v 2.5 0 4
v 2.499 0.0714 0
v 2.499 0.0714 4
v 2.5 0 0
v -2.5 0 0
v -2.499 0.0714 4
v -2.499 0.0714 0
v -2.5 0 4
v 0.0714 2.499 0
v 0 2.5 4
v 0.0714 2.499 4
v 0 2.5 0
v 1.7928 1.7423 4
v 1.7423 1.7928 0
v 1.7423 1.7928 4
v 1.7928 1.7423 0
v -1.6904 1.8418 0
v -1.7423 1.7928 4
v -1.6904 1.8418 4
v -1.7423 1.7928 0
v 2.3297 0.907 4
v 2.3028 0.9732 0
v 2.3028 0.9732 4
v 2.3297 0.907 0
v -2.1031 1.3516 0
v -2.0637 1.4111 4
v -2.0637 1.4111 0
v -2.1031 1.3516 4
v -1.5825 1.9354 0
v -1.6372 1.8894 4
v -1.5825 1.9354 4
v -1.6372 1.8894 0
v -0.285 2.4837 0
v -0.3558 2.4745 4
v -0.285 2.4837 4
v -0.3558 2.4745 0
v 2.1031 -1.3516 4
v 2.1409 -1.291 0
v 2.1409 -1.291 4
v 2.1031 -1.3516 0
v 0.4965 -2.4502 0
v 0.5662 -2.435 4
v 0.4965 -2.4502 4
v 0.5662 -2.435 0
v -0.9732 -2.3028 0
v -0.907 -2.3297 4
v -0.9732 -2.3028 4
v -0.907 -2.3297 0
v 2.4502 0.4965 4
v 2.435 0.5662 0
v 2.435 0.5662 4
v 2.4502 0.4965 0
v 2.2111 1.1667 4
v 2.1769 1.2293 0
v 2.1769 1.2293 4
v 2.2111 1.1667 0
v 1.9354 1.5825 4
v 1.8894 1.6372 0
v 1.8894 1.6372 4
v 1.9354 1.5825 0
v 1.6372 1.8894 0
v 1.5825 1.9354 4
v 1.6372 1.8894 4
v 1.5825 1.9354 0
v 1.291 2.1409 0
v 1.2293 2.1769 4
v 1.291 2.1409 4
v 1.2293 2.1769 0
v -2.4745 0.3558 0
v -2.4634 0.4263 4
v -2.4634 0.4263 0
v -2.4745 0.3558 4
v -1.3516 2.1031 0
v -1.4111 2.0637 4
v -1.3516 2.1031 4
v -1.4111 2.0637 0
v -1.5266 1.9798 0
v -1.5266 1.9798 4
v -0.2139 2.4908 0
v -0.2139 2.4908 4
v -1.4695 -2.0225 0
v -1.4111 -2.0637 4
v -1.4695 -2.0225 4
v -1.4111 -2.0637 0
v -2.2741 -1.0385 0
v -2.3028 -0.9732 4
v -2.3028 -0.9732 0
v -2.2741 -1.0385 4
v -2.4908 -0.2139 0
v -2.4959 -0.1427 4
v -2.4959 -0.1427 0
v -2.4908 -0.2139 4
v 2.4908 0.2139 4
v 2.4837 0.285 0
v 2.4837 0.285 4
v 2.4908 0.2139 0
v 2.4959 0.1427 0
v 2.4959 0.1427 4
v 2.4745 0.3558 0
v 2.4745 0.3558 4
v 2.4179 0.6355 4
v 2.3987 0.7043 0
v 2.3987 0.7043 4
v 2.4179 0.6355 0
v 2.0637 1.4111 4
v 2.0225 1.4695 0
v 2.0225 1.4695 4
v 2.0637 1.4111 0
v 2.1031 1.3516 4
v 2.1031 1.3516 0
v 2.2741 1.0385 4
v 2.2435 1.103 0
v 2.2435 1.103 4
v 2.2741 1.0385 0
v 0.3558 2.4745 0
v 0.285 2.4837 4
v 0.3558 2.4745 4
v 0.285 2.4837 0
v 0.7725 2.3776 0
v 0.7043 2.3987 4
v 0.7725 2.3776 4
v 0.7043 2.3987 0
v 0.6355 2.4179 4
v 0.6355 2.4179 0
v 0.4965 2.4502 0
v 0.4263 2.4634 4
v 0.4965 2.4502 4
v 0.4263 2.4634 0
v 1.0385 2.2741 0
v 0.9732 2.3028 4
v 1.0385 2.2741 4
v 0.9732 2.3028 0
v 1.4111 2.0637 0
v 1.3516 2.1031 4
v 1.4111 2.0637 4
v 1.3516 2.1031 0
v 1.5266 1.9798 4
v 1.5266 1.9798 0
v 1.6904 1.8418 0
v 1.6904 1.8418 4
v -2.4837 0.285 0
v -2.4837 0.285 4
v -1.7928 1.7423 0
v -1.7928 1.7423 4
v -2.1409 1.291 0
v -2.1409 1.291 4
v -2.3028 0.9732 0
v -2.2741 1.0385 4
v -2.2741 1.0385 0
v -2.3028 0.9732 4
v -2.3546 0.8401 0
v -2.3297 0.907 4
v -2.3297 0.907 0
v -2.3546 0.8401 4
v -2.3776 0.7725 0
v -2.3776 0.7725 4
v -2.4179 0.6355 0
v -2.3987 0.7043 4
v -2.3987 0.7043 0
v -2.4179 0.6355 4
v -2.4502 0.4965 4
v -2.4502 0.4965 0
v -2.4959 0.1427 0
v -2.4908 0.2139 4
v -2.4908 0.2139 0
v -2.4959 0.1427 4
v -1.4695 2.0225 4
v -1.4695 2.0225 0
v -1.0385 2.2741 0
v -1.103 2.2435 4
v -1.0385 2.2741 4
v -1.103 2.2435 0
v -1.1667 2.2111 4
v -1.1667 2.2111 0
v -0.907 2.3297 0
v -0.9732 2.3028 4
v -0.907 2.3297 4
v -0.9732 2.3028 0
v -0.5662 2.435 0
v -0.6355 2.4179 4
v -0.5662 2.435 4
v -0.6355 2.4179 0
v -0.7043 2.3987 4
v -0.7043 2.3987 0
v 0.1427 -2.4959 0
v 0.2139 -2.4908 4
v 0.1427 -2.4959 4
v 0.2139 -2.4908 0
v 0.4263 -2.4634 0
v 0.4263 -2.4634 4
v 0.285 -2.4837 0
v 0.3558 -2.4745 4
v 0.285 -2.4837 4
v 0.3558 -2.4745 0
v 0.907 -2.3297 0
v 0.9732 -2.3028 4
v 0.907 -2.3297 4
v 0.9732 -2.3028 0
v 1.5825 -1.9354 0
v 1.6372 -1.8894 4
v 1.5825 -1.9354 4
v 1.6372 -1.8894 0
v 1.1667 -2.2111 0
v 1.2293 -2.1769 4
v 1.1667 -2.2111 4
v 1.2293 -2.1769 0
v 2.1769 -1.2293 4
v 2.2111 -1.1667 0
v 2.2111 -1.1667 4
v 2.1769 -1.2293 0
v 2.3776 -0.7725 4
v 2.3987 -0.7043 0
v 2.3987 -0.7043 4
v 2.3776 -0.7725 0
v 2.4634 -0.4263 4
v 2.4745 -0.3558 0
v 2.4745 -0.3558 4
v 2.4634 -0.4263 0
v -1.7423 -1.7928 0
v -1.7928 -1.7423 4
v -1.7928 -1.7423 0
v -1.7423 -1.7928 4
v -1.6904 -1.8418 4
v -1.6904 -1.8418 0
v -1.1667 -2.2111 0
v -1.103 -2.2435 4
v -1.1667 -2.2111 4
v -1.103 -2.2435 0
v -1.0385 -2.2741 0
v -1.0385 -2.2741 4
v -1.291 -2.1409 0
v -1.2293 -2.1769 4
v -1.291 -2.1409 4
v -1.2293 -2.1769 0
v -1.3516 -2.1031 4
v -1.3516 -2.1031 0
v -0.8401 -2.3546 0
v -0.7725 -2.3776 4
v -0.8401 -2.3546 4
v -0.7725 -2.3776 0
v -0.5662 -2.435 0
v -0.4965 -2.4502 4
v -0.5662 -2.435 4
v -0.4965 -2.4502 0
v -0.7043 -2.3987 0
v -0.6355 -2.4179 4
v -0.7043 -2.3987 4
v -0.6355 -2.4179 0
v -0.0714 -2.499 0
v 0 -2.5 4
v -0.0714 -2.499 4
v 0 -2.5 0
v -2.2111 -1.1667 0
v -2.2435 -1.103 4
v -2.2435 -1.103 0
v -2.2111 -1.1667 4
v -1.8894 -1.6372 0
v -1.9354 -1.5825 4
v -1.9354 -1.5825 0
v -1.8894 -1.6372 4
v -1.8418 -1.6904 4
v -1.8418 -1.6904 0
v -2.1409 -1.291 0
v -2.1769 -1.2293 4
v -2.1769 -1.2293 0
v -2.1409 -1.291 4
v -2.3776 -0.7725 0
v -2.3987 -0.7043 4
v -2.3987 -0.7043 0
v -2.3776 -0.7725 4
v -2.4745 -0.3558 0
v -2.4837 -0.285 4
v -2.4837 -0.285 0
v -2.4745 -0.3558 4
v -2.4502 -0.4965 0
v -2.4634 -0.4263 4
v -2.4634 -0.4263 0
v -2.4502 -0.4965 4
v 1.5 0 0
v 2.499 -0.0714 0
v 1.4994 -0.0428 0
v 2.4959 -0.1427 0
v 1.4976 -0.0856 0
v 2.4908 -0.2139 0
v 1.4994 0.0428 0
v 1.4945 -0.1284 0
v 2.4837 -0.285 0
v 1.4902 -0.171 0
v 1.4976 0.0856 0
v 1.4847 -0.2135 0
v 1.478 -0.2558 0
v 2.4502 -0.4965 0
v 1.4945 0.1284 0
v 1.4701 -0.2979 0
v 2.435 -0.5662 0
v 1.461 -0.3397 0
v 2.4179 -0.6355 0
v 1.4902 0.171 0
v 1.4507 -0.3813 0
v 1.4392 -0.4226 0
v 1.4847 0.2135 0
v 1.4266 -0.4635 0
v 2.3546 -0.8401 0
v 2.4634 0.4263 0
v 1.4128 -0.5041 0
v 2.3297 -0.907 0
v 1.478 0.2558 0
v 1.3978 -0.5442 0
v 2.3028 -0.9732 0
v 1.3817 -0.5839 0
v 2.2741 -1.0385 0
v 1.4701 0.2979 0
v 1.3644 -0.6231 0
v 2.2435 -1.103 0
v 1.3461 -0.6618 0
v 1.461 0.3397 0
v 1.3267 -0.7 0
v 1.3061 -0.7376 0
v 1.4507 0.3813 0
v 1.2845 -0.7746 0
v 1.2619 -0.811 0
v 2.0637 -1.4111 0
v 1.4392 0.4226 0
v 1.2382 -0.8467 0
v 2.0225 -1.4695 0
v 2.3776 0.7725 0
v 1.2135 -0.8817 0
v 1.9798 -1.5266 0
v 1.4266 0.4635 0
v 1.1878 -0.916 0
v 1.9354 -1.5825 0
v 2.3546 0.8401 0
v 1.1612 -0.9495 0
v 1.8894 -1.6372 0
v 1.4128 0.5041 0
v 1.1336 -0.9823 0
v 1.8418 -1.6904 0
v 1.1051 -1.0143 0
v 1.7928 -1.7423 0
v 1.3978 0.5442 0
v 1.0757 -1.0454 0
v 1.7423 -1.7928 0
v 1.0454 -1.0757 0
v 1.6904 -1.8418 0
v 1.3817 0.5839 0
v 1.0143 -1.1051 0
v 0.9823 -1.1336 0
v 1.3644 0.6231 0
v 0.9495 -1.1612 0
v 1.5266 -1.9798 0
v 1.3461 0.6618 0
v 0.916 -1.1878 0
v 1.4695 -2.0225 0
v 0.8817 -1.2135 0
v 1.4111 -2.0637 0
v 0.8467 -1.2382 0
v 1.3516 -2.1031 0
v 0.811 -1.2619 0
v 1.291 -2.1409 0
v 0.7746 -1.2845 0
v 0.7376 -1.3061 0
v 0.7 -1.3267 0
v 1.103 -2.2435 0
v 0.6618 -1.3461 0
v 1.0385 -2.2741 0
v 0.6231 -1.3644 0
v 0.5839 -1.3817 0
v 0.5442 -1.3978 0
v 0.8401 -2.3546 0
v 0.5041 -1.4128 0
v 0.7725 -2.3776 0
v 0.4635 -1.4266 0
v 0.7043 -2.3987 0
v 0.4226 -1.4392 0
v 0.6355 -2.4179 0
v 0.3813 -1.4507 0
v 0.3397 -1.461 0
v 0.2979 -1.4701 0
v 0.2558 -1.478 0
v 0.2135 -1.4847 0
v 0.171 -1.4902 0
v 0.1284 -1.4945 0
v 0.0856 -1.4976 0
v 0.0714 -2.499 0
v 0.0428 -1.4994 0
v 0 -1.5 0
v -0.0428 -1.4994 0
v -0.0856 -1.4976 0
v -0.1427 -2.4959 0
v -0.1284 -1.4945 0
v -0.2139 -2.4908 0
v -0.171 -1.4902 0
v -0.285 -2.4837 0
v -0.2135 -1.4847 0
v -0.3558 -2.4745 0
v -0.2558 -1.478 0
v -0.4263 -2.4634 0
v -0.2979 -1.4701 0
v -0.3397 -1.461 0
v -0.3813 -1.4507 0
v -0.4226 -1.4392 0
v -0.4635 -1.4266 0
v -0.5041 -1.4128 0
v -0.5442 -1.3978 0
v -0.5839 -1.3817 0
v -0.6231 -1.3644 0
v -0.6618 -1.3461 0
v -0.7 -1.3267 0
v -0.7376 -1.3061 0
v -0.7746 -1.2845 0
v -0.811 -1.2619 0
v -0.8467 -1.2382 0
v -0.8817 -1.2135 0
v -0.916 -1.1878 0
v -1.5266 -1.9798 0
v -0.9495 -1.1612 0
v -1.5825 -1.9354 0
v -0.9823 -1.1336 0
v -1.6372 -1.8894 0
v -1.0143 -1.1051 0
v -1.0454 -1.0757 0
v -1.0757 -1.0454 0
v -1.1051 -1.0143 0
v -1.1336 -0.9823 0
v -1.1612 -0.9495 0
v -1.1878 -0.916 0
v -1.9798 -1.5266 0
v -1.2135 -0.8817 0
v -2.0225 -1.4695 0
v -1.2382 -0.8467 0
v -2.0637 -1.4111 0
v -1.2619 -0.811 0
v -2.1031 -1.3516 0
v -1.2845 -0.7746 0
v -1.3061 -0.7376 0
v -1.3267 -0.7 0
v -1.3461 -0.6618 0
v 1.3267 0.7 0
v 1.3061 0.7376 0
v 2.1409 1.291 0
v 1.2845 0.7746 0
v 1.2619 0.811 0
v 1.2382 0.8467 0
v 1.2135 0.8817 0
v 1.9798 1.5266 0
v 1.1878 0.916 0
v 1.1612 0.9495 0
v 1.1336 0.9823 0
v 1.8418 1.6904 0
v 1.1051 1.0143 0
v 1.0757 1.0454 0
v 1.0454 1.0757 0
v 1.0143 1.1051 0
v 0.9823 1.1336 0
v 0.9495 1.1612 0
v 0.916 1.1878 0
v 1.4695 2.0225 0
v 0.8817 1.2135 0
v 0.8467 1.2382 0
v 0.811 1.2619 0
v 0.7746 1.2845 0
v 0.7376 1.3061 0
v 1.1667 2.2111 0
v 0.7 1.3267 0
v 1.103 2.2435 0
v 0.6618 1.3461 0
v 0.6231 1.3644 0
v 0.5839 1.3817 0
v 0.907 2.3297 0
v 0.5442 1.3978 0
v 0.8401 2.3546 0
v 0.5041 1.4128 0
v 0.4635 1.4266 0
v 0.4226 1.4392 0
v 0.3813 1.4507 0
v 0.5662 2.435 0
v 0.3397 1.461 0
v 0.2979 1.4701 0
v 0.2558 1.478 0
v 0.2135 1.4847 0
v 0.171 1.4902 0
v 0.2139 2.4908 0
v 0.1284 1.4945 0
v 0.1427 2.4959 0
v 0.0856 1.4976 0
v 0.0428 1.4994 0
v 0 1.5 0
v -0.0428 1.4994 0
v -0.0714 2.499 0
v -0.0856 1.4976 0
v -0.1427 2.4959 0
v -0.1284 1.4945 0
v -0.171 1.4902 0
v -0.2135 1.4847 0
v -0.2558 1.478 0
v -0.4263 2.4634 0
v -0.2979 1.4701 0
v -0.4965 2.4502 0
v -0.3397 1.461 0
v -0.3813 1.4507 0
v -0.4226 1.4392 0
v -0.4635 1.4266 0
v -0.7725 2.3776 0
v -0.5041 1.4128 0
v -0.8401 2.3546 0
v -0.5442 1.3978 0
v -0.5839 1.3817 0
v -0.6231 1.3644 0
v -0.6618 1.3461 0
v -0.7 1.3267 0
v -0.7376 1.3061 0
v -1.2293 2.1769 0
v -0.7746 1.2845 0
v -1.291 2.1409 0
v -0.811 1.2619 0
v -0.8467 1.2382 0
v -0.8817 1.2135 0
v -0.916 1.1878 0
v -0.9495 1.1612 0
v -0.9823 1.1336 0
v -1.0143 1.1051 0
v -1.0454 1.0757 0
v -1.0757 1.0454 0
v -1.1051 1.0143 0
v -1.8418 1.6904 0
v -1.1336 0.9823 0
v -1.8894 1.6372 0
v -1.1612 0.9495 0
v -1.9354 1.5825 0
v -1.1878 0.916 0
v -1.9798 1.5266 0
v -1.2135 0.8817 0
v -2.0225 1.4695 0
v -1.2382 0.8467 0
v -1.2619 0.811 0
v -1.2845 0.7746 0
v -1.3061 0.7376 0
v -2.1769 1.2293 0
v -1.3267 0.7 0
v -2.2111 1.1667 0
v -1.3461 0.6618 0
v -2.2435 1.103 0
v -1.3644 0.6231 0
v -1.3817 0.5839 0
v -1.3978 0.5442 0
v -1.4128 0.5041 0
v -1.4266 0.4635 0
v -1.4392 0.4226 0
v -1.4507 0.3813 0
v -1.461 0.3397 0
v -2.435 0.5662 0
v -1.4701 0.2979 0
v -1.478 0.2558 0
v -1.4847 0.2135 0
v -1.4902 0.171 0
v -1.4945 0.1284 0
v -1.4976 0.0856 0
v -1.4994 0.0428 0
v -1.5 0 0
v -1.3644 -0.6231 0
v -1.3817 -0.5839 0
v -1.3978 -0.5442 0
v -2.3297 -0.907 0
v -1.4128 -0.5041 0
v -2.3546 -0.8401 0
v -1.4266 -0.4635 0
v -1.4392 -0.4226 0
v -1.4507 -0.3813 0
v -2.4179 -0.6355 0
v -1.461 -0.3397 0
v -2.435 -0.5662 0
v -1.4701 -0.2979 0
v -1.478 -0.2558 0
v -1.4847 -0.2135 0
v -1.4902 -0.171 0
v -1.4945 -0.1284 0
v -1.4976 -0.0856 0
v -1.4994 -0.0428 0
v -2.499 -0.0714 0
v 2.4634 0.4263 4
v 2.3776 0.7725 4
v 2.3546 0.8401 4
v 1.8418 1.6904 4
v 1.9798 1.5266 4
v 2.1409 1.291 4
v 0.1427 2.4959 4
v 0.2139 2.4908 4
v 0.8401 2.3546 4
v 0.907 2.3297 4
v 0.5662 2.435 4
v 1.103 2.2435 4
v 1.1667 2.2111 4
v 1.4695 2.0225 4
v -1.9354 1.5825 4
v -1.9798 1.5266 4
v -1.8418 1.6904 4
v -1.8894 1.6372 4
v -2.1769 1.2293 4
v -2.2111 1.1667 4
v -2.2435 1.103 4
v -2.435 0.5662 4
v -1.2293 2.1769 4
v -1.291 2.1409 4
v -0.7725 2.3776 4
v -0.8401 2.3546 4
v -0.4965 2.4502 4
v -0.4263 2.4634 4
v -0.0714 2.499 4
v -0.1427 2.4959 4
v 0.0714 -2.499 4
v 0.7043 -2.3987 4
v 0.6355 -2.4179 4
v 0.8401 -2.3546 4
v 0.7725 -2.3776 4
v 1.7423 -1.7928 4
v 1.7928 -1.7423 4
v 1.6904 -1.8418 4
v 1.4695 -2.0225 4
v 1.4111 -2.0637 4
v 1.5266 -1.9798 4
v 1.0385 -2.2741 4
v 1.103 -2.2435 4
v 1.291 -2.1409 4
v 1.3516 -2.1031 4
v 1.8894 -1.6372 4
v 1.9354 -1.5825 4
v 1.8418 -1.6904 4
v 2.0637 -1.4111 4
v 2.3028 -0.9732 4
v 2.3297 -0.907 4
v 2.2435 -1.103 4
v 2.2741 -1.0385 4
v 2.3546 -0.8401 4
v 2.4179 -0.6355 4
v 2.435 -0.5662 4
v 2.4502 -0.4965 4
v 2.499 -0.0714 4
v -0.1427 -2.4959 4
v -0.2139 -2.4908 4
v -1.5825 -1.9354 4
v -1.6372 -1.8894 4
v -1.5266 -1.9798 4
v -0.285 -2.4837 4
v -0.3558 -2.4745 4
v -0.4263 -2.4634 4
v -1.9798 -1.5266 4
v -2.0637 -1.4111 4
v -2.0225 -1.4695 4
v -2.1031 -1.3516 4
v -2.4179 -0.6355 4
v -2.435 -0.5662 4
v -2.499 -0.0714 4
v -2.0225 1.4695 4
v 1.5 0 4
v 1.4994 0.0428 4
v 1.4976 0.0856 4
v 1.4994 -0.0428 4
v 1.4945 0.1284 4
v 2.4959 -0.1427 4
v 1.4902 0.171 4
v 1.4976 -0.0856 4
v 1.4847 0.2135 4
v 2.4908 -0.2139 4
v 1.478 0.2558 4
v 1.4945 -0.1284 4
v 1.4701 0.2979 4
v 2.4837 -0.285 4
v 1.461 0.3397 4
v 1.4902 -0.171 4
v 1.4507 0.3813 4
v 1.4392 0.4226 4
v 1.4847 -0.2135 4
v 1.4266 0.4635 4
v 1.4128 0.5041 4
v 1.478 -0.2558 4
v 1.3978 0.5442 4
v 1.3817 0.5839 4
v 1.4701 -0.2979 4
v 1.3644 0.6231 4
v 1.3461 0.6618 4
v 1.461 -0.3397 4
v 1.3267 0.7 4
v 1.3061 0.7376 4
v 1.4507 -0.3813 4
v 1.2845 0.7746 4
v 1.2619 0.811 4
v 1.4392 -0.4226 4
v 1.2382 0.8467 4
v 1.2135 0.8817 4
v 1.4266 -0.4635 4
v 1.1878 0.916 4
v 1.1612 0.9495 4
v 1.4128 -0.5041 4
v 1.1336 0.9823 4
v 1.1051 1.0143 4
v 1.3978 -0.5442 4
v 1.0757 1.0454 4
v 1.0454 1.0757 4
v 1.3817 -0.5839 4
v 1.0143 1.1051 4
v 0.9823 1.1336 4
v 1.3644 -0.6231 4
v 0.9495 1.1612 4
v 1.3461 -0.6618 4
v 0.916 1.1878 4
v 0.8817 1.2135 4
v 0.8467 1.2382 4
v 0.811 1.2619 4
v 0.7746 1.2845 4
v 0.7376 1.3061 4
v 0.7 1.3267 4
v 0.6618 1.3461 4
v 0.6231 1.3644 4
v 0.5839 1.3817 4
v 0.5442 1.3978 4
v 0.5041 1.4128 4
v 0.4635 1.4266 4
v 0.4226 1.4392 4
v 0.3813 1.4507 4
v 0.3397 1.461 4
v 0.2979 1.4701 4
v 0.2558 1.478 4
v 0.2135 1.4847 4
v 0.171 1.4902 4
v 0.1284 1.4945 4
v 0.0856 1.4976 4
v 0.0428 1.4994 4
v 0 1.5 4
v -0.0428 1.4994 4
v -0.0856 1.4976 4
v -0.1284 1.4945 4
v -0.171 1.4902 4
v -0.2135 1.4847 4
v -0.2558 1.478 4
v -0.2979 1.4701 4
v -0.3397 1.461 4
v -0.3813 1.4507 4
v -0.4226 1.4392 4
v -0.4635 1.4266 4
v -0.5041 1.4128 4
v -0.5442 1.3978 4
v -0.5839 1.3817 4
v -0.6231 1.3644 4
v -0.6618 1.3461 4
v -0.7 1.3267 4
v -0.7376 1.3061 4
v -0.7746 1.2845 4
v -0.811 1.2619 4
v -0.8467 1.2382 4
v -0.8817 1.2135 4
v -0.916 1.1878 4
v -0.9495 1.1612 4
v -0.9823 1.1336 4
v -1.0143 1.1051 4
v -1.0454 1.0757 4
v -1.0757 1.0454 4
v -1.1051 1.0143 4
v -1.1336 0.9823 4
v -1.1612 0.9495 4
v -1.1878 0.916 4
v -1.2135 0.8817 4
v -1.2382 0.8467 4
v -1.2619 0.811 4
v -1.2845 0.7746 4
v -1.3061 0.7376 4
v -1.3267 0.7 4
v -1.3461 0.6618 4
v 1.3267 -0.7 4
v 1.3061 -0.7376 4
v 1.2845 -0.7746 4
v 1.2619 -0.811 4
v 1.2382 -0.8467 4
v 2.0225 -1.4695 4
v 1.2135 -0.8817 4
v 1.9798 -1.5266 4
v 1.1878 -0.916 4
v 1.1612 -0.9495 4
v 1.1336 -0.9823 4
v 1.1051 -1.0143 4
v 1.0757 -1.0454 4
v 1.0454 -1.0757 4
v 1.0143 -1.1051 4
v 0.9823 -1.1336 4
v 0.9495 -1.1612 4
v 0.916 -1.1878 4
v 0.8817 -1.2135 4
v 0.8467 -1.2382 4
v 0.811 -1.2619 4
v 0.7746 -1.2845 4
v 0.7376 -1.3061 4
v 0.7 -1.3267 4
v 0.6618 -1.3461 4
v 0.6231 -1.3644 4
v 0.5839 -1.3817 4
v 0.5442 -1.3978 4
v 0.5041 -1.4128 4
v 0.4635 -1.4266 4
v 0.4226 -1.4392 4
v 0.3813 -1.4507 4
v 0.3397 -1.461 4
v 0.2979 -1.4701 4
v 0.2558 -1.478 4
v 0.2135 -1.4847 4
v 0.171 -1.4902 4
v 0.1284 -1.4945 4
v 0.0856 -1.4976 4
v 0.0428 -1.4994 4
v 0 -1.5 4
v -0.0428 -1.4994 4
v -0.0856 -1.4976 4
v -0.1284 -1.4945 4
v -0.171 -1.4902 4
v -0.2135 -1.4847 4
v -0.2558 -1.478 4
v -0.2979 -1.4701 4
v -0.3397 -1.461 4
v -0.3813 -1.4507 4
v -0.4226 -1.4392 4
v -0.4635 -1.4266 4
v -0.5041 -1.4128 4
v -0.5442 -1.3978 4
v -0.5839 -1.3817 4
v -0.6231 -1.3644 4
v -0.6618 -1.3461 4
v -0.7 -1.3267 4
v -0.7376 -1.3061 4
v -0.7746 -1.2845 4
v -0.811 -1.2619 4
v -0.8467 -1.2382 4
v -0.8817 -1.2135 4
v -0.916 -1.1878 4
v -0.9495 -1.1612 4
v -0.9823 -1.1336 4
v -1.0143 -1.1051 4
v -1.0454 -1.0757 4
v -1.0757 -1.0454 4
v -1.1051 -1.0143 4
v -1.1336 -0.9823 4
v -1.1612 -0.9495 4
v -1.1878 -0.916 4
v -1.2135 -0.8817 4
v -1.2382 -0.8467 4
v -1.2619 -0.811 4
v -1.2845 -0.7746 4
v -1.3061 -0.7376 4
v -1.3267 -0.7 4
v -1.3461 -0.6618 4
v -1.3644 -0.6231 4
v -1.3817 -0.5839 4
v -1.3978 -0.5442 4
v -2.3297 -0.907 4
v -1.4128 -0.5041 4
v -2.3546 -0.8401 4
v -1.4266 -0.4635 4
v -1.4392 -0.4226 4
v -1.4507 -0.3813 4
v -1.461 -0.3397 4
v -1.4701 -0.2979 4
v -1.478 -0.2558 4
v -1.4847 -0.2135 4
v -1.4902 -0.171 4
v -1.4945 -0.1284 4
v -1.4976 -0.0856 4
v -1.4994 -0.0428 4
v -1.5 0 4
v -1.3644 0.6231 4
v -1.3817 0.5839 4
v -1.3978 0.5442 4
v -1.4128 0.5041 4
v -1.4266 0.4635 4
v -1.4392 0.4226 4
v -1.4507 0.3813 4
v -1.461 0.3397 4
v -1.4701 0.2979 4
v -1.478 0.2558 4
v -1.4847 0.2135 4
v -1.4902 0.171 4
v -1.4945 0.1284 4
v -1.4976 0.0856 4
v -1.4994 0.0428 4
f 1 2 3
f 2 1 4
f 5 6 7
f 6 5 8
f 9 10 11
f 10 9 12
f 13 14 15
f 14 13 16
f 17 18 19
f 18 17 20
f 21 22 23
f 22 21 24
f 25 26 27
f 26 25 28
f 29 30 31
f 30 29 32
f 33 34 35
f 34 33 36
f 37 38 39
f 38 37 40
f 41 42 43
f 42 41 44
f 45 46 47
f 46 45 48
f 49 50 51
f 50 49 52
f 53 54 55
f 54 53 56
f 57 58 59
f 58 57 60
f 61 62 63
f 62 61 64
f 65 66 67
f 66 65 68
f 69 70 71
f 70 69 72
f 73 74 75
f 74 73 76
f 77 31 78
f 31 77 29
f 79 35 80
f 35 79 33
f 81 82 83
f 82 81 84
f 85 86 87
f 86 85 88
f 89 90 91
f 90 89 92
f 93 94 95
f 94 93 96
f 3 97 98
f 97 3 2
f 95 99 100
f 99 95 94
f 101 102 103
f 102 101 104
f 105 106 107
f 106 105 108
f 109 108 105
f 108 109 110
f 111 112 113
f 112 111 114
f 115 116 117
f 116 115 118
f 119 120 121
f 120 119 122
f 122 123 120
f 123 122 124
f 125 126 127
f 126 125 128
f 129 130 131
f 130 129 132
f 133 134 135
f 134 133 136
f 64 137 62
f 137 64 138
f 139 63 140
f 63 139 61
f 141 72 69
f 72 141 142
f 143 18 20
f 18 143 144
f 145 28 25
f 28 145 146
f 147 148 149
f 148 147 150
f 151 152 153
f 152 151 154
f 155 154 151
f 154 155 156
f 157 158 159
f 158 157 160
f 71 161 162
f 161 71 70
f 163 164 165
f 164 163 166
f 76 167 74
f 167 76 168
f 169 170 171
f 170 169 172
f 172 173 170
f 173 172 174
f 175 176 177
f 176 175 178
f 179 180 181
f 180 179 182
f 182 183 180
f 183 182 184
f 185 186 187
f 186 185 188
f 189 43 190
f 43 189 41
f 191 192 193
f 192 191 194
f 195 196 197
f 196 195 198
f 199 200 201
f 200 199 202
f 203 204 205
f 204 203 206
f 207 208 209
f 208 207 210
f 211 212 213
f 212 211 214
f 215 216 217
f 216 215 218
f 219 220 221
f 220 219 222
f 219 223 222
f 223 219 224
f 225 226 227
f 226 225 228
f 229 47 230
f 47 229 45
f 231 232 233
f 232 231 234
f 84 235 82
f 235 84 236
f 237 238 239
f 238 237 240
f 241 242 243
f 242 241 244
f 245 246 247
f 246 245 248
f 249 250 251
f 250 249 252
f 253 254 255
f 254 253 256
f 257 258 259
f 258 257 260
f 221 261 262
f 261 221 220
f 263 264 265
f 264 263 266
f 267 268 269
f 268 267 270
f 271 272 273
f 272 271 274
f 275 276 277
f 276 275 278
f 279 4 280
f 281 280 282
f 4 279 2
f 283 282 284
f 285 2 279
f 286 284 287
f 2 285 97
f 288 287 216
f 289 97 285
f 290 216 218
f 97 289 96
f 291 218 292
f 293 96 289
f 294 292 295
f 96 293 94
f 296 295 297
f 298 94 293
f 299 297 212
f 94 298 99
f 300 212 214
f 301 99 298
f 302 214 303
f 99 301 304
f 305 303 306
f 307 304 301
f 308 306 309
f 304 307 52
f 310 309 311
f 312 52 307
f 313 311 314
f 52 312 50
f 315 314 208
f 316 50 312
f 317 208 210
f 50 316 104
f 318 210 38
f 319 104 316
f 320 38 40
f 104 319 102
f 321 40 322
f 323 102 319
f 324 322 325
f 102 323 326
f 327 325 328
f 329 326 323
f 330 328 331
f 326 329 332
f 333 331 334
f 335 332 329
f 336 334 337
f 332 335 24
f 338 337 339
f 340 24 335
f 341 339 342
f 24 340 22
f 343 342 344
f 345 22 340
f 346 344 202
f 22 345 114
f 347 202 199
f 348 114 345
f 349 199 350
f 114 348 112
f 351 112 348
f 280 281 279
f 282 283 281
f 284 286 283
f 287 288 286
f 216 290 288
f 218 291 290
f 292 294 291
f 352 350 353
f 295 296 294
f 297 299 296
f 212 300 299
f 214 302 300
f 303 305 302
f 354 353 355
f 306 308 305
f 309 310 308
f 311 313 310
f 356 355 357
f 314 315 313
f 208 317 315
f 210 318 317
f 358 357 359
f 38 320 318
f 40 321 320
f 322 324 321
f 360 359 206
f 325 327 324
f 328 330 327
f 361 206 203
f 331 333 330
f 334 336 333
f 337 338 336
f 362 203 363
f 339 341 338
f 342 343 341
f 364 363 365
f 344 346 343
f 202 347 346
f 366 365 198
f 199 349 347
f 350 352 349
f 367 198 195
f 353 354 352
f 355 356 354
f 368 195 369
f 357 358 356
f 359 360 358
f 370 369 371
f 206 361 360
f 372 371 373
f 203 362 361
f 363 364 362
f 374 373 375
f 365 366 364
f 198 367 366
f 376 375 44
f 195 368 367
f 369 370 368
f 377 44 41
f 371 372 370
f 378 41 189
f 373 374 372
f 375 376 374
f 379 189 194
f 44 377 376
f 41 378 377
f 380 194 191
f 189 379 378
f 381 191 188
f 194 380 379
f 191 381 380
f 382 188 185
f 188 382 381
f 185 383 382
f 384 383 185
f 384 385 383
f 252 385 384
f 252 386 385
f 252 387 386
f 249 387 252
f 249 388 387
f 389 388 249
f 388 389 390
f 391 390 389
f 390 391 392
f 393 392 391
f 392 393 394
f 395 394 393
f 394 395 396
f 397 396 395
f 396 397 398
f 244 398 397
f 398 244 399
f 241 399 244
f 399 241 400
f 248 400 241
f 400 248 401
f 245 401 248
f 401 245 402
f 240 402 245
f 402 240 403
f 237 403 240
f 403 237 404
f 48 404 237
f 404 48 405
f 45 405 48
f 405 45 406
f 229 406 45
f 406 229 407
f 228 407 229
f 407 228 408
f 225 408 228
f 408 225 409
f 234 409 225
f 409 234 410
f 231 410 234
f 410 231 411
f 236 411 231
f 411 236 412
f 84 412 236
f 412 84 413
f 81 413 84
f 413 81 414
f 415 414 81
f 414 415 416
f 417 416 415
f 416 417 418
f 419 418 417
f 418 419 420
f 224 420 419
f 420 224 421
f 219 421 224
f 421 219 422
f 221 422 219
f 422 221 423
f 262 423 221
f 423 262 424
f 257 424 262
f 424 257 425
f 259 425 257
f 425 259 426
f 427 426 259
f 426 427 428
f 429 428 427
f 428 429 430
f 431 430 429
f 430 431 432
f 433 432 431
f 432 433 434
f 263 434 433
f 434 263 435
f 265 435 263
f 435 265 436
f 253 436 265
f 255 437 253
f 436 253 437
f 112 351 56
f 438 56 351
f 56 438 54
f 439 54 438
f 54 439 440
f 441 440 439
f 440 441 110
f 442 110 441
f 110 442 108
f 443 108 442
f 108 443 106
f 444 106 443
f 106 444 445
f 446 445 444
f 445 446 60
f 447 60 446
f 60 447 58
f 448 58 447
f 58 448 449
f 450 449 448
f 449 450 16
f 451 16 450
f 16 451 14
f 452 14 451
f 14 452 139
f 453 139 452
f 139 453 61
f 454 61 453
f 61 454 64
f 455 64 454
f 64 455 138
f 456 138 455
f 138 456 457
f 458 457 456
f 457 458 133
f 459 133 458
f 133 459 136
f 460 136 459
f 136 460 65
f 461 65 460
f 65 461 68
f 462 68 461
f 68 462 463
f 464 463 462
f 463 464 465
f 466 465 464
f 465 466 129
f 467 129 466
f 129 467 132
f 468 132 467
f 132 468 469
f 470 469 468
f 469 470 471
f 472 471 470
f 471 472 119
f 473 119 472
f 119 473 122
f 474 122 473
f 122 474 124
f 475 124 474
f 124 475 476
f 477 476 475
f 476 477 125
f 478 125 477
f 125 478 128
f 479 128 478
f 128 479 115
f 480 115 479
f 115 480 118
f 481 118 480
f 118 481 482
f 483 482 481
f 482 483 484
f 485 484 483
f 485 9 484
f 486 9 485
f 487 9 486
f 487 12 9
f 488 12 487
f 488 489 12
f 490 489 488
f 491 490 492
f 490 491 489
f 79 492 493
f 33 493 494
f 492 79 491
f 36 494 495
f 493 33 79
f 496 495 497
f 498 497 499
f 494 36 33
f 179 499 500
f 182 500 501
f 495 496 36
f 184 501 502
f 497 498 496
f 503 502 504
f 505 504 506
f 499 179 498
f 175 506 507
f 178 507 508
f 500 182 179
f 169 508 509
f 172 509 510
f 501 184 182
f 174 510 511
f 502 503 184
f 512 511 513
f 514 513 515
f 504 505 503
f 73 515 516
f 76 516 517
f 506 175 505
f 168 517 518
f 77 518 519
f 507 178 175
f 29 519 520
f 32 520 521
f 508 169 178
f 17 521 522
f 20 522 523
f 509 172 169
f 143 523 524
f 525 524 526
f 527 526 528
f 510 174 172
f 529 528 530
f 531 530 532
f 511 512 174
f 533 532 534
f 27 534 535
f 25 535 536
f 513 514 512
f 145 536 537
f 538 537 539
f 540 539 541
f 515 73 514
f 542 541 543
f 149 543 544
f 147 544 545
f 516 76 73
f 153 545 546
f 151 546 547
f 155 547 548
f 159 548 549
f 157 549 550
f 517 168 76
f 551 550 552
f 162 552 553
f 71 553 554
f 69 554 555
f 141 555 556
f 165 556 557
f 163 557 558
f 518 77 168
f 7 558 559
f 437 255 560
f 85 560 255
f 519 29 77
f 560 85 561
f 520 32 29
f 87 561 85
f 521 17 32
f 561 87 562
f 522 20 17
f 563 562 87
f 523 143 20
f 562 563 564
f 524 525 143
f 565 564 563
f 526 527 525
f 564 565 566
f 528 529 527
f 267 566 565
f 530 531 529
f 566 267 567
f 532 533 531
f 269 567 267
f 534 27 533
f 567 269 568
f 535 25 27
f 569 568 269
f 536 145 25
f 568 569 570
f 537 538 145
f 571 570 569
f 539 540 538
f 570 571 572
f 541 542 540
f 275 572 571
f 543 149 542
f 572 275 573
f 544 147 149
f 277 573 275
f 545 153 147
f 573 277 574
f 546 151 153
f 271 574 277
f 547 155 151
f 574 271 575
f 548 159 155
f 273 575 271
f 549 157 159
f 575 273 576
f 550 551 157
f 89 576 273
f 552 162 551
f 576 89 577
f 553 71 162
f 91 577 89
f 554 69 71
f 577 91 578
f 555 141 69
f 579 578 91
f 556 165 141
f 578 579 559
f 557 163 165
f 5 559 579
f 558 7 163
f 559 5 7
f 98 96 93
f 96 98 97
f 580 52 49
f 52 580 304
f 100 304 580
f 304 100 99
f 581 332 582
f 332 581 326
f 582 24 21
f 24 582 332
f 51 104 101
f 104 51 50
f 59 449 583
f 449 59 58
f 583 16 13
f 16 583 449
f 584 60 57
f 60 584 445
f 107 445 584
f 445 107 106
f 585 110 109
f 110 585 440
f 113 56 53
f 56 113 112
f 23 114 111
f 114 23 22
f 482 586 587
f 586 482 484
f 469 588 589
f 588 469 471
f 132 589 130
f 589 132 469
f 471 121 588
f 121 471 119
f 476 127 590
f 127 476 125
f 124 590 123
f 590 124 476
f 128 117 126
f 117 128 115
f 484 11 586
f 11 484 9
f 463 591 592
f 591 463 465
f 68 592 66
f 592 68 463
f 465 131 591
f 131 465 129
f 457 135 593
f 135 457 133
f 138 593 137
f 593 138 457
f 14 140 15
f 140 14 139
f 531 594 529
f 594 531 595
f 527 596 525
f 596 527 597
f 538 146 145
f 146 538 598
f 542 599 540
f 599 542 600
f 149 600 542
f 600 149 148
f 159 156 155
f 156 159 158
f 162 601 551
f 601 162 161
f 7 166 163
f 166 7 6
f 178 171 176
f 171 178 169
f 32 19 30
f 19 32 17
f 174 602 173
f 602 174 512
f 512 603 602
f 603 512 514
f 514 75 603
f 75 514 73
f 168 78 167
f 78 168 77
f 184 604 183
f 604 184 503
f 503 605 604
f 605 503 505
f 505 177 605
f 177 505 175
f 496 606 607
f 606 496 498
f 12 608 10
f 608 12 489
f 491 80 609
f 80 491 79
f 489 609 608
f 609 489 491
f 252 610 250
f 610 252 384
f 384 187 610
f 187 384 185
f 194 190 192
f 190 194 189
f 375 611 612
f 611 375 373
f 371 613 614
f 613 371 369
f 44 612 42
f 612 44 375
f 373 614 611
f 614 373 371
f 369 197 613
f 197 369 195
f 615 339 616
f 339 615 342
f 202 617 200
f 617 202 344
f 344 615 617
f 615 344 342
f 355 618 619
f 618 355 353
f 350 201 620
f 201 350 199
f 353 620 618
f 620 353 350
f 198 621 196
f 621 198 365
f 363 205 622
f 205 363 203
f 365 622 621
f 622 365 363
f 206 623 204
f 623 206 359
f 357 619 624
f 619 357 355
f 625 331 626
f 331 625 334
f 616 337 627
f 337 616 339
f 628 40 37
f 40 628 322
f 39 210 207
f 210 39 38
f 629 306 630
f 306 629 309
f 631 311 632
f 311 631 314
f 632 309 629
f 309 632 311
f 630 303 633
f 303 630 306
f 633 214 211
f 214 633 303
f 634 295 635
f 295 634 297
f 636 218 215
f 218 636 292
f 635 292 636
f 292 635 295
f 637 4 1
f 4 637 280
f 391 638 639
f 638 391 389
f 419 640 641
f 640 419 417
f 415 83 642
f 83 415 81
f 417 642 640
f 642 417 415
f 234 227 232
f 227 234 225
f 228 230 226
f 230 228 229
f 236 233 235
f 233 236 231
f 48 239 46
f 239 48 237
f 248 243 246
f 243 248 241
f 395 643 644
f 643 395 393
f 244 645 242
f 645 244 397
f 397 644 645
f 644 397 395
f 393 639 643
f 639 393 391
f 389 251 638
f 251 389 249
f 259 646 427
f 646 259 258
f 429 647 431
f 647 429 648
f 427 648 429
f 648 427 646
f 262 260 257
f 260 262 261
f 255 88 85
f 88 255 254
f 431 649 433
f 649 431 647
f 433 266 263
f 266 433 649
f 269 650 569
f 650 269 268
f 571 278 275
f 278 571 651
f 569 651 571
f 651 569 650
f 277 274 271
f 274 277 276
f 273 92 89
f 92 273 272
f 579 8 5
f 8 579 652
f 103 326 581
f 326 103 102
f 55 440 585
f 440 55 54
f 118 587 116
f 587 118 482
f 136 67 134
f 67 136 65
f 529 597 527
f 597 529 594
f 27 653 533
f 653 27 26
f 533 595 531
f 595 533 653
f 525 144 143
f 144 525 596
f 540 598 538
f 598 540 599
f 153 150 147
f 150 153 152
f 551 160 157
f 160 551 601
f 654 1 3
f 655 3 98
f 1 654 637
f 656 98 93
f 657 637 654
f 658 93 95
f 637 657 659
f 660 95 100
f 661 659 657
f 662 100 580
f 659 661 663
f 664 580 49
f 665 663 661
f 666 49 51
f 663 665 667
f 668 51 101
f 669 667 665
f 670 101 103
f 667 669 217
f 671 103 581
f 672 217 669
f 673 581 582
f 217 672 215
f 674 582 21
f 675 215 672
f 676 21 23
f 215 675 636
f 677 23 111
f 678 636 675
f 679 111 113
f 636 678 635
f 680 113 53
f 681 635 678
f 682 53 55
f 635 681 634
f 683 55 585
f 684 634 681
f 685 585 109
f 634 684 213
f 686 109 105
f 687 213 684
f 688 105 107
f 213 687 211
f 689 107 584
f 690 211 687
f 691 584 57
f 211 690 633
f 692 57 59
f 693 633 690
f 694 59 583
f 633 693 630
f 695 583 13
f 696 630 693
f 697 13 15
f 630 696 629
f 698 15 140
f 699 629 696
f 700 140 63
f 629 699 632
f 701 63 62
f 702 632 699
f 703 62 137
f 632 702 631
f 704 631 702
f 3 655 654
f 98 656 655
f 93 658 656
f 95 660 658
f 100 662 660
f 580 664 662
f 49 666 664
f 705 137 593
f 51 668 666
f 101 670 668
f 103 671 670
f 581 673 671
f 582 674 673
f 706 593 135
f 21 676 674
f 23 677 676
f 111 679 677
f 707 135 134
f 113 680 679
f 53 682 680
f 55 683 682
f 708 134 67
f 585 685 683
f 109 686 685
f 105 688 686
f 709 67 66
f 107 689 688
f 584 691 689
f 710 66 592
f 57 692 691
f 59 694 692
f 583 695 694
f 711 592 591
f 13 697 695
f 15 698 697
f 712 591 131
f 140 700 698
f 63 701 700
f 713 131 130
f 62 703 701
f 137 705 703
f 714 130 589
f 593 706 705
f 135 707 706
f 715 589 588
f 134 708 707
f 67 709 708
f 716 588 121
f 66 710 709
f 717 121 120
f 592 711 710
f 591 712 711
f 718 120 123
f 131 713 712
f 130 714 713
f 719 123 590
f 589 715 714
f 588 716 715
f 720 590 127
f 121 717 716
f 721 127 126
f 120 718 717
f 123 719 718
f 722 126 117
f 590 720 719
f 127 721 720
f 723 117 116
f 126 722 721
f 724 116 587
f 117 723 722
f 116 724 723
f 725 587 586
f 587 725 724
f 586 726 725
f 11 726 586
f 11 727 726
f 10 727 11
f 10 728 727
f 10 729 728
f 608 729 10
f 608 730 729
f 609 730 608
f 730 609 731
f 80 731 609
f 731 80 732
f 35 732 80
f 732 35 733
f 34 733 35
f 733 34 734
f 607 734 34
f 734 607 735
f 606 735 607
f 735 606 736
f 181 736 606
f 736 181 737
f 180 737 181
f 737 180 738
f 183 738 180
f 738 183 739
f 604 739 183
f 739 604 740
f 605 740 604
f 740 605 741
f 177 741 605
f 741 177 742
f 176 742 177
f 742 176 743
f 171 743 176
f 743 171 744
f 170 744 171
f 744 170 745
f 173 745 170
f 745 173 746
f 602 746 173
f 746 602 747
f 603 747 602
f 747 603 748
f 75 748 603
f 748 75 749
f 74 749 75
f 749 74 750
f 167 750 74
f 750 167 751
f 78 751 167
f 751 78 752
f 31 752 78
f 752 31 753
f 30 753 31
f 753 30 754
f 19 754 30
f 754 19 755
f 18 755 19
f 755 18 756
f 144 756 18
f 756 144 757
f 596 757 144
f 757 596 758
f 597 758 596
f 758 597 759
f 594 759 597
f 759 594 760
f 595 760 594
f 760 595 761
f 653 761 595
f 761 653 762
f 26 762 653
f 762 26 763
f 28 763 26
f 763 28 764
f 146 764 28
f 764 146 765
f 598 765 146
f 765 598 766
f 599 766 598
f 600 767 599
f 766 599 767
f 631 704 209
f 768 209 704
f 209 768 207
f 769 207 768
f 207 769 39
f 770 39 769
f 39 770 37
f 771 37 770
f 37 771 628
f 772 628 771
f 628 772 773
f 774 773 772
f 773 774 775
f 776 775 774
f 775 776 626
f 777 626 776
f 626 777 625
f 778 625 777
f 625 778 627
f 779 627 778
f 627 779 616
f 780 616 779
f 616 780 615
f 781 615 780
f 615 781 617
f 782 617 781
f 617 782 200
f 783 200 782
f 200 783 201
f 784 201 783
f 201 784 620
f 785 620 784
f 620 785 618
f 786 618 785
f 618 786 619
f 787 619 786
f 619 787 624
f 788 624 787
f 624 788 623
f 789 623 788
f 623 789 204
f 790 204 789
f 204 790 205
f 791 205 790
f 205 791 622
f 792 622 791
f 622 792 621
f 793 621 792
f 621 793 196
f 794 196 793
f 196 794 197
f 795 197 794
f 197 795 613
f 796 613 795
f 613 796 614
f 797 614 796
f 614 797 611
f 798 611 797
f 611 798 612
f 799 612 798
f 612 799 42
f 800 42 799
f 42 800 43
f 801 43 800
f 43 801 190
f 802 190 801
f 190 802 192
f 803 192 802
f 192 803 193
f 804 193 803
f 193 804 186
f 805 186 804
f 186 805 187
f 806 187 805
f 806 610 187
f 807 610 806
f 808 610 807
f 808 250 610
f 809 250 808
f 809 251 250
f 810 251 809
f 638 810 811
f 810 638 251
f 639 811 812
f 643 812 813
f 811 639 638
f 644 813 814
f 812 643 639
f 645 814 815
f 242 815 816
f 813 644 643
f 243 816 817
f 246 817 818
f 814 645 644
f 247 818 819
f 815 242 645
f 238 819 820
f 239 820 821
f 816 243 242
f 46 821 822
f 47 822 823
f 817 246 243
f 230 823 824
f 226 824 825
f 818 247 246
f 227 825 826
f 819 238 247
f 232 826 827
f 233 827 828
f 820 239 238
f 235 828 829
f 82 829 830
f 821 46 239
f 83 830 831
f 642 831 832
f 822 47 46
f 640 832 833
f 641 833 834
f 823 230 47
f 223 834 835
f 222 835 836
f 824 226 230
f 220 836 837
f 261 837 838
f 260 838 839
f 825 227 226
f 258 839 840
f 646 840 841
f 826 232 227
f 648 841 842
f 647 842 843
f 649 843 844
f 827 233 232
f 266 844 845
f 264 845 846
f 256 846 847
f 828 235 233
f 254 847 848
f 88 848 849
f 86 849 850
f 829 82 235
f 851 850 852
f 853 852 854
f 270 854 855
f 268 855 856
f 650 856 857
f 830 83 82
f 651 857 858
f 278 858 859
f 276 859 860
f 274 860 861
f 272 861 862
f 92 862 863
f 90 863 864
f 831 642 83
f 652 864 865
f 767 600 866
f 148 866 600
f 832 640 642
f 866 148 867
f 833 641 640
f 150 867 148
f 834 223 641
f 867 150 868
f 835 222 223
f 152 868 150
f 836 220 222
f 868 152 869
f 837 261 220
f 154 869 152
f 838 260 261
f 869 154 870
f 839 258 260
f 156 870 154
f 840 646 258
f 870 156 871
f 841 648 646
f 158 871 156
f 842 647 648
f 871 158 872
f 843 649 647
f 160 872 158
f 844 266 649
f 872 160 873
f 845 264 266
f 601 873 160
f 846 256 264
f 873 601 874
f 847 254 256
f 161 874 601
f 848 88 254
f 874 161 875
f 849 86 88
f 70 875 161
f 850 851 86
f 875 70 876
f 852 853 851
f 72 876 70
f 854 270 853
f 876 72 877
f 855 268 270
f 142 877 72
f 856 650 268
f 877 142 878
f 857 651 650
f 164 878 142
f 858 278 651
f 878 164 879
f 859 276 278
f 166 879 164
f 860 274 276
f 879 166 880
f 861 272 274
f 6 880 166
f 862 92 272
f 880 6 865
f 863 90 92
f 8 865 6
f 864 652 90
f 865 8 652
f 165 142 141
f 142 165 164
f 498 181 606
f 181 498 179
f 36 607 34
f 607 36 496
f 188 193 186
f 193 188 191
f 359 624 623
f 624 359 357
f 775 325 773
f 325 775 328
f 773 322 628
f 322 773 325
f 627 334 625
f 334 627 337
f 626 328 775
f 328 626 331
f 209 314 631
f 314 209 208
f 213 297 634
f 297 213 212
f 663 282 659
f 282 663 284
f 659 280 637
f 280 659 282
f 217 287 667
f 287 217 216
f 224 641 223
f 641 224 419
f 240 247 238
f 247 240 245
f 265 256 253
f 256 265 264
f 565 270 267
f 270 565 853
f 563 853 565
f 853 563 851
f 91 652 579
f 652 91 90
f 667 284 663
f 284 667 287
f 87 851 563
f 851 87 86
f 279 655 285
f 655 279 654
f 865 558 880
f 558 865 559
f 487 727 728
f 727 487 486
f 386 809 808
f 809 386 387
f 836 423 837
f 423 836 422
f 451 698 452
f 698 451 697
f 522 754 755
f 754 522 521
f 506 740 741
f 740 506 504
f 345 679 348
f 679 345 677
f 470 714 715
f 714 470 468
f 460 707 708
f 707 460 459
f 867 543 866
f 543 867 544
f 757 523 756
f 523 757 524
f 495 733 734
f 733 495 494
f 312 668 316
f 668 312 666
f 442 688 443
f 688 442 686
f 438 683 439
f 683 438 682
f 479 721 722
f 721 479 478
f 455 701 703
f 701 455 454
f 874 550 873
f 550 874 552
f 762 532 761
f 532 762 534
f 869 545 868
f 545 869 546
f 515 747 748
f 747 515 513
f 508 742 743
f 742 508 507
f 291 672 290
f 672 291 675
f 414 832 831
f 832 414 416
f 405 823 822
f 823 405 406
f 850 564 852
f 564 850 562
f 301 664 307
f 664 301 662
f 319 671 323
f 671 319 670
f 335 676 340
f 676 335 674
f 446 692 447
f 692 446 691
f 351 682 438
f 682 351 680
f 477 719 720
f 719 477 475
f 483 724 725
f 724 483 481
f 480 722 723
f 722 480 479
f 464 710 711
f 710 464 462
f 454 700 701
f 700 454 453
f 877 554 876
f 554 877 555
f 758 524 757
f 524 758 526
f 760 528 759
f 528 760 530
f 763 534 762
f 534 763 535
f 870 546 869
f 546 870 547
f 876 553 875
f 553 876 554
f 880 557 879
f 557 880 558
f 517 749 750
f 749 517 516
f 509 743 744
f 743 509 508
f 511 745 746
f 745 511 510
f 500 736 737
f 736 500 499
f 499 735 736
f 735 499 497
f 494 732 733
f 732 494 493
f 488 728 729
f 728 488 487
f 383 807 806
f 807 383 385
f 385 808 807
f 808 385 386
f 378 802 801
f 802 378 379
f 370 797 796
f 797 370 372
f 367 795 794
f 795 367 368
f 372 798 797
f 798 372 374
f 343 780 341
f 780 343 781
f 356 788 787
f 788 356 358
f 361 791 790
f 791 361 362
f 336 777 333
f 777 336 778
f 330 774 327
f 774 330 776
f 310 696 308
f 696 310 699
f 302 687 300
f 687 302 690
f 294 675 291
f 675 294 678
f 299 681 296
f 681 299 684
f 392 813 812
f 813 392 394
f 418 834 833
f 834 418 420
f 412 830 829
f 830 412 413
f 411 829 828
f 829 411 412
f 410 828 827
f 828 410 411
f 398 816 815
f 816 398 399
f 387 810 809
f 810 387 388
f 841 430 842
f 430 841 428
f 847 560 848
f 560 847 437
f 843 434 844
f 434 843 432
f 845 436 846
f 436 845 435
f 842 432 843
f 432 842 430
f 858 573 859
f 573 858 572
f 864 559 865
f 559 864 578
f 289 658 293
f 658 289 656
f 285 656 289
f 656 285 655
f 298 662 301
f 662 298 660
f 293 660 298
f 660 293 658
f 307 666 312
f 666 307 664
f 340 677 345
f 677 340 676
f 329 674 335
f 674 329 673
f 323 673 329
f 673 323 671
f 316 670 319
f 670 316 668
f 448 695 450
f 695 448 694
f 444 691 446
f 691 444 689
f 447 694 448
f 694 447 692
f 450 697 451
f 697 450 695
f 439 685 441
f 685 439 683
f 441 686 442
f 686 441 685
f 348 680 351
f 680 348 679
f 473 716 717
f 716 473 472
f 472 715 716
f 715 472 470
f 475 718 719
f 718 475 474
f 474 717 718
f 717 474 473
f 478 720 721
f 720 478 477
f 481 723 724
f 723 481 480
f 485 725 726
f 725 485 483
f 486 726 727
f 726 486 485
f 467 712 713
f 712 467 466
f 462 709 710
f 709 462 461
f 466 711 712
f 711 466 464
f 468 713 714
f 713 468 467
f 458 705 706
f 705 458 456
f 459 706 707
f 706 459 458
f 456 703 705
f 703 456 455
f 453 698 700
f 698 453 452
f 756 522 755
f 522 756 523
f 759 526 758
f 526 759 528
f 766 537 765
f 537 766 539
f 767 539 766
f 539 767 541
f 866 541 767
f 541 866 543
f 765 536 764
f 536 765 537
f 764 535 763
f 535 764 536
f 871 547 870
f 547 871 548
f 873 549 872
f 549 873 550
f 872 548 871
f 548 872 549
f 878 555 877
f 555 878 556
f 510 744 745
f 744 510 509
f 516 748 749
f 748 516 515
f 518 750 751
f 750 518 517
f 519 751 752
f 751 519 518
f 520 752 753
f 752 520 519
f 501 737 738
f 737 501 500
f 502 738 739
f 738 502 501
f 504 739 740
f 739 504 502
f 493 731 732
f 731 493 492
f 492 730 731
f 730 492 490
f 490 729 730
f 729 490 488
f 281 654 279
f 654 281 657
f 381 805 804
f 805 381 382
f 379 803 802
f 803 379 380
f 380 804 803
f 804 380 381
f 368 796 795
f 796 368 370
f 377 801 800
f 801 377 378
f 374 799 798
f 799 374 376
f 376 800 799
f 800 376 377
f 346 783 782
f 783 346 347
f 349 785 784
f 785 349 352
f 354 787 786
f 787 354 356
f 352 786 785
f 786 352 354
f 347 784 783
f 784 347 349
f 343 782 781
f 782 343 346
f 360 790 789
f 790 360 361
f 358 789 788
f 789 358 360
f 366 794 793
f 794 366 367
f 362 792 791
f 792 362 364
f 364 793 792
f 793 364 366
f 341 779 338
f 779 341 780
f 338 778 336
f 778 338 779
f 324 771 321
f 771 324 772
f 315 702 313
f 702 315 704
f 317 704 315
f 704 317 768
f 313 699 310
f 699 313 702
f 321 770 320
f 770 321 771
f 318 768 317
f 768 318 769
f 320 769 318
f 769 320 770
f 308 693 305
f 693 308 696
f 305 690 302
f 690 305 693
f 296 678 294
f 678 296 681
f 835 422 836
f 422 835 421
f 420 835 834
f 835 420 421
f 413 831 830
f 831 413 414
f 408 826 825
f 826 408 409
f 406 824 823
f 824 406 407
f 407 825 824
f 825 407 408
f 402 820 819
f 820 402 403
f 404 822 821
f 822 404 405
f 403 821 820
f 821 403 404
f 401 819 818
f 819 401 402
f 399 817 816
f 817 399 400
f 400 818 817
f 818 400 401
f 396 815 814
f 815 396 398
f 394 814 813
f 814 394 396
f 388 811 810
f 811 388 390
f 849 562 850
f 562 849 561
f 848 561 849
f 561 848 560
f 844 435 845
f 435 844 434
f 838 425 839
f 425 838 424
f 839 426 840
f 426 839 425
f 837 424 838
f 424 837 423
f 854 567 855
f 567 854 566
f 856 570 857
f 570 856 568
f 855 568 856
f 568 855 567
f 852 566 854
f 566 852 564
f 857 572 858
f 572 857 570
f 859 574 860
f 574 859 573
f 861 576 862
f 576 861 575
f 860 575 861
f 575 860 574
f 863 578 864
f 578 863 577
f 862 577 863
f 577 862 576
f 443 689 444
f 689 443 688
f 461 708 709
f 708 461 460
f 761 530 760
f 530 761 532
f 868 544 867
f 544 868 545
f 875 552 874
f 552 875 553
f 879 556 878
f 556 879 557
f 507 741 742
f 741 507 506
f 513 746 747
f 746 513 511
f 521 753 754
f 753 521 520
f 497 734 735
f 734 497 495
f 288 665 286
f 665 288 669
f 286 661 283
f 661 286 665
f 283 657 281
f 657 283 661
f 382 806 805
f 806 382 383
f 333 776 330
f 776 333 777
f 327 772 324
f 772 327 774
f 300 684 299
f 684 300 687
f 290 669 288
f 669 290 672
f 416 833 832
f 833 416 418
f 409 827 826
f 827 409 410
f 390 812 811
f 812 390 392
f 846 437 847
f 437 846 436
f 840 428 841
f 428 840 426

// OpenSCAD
$fn = 220;
difference () {
    cylinder(r=2.5,h=4);
    translate([0,0,-2]) {
        cylinder(r=1.5,h=12);
    }
}
